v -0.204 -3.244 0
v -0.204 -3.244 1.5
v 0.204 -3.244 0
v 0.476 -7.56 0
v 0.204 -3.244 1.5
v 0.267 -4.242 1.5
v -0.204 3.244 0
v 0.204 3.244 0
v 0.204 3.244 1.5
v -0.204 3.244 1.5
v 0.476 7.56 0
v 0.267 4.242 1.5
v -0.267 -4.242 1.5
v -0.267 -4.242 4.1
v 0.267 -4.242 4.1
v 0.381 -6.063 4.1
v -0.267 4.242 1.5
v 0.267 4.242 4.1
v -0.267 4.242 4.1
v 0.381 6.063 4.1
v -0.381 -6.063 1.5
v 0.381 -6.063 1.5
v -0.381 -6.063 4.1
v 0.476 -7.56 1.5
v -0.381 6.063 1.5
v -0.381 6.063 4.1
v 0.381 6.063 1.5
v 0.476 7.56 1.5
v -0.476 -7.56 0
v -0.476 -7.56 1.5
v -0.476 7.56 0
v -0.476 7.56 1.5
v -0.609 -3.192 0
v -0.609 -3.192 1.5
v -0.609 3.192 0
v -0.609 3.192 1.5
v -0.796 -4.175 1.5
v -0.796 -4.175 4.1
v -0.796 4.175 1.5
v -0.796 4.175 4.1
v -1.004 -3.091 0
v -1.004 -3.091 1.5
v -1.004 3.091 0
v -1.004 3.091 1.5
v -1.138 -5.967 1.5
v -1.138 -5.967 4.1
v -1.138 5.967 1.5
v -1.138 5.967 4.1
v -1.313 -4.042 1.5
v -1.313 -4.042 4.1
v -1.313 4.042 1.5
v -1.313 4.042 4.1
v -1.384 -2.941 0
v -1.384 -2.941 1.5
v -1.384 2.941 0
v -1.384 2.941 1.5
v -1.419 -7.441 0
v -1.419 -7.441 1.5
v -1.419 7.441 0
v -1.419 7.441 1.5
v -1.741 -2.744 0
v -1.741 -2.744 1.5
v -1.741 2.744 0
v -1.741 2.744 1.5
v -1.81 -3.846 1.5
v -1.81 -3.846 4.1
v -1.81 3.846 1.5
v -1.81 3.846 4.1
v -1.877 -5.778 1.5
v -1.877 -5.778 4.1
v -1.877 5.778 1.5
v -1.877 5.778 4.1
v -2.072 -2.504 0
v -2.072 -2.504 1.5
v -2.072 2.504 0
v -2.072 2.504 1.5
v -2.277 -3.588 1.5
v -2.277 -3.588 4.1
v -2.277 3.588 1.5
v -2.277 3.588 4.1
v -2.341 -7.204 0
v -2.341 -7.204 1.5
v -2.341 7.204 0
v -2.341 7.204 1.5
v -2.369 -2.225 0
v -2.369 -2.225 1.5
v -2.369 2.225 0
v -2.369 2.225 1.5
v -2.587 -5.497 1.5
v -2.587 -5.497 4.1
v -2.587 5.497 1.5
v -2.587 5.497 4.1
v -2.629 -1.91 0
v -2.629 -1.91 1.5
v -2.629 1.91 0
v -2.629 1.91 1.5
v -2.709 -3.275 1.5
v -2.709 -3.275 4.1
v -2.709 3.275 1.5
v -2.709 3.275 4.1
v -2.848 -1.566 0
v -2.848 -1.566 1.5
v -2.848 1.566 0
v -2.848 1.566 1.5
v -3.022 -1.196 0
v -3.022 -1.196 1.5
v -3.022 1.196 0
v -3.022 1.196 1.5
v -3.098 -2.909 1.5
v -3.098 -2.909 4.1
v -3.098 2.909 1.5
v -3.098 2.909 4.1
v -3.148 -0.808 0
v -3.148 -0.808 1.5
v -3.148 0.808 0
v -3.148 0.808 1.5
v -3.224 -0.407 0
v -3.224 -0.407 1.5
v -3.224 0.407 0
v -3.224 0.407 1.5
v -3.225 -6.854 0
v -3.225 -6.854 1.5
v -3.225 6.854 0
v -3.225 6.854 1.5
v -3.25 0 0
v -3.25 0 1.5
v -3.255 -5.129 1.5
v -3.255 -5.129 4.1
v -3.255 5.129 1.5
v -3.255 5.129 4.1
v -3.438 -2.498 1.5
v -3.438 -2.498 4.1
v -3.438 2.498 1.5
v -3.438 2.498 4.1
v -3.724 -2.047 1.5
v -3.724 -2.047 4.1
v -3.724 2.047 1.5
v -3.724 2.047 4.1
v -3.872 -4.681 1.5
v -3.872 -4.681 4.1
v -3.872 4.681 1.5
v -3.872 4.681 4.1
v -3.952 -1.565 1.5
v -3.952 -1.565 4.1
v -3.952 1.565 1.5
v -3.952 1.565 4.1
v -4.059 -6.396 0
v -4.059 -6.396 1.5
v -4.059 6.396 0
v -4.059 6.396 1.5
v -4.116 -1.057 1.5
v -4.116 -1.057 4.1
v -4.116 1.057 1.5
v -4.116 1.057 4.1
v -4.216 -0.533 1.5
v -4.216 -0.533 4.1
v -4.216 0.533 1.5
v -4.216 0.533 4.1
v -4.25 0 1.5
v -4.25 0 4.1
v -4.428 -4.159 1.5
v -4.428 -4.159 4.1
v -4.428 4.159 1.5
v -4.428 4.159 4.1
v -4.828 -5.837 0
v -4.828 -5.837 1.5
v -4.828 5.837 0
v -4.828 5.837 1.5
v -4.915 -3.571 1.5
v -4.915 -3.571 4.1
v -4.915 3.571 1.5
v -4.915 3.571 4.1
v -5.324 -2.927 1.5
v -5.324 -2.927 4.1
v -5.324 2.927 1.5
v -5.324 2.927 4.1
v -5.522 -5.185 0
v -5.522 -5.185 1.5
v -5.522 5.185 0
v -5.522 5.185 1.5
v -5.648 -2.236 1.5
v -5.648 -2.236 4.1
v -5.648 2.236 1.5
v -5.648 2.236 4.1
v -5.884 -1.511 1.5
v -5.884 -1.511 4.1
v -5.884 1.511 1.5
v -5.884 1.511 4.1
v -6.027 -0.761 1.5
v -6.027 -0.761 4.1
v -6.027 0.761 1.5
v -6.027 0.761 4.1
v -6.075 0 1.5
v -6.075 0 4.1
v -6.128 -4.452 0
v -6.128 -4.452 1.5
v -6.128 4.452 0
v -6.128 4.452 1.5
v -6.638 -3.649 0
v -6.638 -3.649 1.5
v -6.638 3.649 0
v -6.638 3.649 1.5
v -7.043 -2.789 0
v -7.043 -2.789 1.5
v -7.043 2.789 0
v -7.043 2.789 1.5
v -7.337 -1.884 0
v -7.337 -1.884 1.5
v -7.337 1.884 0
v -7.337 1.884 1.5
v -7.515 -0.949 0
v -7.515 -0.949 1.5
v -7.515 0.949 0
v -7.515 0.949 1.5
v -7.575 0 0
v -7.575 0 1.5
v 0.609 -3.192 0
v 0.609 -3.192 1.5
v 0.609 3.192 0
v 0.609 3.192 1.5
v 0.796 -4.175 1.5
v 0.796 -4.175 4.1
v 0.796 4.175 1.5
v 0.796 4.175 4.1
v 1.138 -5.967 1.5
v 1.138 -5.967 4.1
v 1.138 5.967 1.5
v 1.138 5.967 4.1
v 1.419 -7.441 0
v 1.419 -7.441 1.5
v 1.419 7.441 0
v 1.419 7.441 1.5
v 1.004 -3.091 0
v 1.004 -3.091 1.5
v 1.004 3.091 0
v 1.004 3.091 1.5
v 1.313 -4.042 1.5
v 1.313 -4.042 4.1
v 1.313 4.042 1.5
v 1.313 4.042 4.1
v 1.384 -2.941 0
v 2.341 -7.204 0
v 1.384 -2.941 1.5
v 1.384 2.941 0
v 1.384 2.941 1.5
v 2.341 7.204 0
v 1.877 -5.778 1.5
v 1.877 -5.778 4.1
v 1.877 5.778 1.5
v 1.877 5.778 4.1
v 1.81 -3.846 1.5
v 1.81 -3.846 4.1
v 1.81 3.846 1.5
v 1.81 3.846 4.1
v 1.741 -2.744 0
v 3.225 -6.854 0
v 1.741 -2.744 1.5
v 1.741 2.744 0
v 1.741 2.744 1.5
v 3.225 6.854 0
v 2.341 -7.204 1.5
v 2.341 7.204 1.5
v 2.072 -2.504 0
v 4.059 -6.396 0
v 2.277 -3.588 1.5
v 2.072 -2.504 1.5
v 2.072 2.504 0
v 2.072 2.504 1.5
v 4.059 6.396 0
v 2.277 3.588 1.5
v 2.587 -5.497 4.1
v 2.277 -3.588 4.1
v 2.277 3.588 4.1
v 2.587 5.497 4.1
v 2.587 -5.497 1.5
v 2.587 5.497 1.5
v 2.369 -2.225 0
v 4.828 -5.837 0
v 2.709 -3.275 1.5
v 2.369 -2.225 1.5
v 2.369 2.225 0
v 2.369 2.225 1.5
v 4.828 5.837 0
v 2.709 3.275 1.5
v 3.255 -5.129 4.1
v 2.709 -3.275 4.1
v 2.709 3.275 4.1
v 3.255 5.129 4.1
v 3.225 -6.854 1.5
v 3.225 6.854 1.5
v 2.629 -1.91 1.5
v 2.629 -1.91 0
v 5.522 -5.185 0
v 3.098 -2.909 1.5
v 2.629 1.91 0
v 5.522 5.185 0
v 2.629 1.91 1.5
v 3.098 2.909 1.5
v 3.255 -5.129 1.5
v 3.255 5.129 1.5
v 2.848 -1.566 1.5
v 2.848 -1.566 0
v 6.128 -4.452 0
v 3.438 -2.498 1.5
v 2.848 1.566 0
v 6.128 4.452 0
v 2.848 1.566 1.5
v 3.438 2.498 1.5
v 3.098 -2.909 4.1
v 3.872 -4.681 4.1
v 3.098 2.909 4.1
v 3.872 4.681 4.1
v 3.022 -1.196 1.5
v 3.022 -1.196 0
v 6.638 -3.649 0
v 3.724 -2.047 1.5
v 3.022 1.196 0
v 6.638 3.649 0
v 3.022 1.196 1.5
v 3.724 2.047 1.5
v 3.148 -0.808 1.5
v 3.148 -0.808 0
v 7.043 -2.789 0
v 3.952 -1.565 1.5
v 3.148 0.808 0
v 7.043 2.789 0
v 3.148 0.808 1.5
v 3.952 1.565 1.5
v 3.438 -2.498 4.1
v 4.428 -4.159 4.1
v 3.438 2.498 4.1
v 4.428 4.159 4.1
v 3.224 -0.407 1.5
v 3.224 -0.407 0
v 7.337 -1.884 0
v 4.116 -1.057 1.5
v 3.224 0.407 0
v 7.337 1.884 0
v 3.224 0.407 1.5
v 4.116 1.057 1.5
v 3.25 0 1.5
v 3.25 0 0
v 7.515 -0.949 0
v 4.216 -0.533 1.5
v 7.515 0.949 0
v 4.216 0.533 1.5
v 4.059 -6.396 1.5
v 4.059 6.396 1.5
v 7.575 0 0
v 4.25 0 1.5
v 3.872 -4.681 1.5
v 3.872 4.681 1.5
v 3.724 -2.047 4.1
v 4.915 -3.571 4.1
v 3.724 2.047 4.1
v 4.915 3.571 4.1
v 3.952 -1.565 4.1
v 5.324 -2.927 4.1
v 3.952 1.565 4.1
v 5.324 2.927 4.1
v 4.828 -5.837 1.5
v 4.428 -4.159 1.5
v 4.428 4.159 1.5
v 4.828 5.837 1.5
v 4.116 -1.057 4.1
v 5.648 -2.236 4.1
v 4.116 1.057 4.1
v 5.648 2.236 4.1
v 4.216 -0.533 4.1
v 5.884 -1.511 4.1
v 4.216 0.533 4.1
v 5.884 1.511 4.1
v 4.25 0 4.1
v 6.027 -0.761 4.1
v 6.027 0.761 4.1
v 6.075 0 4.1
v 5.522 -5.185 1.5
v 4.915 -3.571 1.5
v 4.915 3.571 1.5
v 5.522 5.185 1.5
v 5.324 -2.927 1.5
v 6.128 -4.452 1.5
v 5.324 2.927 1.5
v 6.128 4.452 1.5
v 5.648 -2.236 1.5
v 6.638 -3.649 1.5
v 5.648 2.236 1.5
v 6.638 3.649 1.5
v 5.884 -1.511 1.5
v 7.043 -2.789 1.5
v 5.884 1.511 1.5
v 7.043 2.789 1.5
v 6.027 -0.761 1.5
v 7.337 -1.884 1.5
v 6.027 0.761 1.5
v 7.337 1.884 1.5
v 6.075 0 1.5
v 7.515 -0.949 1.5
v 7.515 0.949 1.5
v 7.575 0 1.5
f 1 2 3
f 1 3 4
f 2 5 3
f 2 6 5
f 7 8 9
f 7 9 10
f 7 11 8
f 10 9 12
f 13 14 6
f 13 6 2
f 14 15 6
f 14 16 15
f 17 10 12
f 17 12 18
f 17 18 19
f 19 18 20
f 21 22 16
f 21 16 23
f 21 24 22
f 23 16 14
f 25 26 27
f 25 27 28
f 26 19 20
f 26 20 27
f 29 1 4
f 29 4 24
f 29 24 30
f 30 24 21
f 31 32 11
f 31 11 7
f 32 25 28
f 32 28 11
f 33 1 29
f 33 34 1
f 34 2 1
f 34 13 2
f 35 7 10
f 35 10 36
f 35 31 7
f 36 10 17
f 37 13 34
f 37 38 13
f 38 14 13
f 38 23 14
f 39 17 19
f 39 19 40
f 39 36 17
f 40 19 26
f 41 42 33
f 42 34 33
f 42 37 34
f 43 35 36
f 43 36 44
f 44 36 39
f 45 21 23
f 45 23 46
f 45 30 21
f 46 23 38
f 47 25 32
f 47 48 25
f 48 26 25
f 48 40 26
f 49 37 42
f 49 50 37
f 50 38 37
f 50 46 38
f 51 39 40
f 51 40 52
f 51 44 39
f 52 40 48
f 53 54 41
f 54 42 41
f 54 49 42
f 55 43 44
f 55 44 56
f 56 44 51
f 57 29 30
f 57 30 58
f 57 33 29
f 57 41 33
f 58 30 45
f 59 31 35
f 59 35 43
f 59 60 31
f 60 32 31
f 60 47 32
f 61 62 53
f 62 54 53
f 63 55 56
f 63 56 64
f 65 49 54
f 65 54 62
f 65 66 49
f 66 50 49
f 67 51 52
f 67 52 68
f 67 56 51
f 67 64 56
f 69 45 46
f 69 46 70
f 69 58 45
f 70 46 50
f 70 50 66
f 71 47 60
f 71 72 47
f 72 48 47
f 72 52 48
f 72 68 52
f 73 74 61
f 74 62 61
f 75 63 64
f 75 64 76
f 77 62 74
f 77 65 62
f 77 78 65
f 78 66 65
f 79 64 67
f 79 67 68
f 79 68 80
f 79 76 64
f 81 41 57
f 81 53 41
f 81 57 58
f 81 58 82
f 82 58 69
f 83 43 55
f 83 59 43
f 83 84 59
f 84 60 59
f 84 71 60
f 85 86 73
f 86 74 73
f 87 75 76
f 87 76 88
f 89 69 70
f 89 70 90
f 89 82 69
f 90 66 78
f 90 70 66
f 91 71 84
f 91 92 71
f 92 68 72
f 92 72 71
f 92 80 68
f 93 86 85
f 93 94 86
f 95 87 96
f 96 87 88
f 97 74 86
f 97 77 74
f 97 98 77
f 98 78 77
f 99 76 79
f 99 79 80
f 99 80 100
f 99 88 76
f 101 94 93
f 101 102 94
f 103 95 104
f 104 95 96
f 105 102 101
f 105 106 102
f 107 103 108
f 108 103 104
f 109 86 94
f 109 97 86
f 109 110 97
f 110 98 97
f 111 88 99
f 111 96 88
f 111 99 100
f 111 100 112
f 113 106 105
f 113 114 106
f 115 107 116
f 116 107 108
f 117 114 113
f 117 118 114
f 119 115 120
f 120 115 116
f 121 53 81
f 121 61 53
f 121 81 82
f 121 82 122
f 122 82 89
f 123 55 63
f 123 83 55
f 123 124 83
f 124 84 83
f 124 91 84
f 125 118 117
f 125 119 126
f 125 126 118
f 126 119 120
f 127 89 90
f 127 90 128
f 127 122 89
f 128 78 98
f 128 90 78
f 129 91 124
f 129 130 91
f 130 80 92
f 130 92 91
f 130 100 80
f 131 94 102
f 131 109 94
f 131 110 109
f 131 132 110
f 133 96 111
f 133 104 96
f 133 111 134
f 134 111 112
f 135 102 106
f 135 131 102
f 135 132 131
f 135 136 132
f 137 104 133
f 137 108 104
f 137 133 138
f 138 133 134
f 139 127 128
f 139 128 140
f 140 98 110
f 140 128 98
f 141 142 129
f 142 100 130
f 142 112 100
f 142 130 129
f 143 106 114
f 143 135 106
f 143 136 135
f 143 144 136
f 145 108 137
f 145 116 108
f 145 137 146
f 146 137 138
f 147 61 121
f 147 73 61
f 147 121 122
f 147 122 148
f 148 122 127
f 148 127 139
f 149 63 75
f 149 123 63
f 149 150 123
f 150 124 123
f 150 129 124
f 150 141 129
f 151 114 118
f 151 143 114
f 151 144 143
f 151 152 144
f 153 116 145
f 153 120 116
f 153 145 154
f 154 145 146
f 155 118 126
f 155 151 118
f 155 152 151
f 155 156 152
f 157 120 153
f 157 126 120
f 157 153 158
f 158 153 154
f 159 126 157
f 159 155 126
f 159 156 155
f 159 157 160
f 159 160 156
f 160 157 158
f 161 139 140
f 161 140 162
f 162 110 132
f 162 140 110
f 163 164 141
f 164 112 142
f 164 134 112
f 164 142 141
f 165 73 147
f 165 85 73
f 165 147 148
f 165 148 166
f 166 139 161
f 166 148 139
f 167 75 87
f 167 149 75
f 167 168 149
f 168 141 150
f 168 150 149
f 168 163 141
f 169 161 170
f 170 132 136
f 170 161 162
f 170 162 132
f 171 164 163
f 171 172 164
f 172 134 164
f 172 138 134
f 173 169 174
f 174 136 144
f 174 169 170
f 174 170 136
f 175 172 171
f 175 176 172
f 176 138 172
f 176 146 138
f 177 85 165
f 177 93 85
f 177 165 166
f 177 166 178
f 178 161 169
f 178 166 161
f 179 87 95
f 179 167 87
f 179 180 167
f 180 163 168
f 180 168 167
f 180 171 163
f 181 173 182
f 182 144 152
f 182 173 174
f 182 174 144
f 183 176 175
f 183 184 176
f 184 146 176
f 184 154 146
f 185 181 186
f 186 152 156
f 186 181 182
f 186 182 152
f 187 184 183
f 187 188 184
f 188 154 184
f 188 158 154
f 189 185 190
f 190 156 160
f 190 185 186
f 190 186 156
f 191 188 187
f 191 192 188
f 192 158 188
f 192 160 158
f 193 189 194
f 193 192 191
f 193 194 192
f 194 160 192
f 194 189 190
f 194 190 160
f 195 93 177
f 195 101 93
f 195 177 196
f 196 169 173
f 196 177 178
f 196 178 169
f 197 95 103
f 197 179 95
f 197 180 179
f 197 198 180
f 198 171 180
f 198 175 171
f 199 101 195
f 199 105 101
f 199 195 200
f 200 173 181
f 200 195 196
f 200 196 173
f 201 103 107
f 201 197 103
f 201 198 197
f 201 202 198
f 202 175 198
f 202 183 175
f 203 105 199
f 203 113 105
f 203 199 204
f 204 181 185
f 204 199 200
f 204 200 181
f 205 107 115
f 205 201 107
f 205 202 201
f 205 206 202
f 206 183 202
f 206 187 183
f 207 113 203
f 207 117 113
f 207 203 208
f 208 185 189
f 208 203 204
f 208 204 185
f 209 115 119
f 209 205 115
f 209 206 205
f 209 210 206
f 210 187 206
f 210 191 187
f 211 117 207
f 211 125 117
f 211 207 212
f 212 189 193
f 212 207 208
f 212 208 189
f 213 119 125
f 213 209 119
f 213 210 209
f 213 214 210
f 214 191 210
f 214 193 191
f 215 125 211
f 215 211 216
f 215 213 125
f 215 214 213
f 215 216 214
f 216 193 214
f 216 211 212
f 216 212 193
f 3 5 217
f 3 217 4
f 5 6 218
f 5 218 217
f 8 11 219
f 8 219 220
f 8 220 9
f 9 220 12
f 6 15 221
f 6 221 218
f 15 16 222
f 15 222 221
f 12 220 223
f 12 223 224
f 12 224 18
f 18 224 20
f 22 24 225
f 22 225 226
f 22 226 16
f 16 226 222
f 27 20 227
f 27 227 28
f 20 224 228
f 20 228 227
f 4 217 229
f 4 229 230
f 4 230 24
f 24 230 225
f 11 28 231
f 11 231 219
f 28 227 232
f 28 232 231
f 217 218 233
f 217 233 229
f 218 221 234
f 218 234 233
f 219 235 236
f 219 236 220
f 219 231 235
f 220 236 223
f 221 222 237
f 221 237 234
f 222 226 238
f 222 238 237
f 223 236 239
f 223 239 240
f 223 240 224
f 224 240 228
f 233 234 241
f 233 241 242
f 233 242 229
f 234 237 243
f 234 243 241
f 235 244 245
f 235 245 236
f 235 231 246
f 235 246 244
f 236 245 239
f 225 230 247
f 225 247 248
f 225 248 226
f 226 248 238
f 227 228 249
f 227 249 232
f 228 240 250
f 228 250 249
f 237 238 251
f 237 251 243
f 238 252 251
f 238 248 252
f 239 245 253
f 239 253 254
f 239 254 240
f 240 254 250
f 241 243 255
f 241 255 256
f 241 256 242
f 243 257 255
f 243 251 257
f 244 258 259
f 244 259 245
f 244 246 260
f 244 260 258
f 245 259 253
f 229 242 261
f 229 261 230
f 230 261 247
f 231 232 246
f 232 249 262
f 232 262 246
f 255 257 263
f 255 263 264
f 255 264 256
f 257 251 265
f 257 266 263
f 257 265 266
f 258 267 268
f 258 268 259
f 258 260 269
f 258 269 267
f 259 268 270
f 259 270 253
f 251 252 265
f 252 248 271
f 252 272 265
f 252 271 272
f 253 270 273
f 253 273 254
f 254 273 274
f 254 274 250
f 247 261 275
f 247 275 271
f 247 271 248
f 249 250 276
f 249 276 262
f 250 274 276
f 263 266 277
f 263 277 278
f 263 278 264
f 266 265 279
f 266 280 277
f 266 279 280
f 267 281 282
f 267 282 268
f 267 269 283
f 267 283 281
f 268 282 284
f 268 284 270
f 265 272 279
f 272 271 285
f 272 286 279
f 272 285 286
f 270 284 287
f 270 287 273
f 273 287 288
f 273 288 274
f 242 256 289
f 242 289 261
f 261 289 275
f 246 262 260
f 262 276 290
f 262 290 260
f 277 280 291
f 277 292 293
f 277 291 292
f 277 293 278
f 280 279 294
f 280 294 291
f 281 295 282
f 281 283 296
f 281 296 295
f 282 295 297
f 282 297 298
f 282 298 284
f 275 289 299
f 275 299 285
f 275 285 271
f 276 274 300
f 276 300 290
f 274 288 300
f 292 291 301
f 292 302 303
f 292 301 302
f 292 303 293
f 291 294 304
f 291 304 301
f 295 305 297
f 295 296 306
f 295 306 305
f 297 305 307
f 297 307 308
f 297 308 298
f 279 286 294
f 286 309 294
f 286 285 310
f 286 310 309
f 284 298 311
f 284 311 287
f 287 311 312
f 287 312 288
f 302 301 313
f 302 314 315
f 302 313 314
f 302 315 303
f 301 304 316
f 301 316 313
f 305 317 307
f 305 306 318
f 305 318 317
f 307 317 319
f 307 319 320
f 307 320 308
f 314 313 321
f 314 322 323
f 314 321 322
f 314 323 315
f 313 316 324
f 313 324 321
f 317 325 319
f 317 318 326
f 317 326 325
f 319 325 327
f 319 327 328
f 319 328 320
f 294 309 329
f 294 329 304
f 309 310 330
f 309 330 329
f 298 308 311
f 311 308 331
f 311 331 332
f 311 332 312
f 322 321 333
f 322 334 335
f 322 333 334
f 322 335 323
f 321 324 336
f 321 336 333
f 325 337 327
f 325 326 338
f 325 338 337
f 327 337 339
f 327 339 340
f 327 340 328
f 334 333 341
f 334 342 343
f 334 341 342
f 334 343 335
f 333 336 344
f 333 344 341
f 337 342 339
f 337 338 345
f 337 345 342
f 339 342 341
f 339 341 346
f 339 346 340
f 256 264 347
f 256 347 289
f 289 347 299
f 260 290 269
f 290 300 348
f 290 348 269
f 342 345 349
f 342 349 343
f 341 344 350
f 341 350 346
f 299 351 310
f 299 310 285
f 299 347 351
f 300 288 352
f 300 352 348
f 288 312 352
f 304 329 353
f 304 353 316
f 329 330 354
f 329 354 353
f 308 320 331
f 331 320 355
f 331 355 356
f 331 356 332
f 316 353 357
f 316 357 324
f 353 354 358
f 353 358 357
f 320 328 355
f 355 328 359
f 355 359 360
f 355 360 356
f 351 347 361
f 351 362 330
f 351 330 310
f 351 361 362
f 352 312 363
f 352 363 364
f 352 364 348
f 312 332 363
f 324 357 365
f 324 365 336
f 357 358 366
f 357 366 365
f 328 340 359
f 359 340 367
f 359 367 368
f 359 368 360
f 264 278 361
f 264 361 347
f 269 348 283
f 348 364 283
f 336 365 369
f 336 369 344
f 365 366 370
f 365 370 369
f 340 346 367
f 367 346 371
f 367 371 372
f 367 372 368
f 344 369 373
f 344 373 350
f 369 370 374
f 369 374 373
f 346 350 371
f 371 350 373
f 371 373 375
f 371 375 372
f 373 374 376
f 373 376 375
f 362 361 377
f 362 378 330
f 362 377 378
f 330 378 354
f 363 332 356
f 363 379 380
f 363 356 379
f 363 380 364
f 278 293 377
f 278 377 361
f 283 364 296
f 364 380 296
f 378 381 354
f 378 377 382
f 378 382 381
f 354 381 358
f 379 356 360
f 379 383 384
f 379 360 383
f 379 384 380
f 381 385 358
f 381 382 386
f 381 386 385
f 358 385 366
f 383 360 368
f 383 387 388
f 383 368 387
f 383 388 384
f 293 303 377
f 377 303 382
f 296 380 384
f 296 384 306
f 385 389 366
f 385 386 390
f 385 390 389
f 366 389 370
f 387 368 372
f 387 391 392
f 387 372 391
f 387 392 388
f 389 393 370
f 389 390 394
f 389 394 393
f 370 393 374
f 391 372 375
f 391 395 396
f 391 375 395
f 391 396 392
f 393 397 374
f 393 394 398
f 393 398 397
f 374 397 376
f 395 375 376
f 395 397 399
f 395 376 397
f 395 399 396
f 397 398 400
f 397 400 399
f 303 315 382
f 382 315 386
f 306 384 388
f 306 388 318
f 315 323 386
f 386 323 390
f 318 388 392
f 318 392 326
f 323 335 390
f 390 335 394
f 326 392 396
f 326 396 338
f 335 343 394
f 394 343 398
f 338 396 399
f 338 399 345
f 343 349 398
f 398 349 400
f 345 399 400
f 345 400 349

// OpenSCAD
// file: ../888_1023.scad
include <../parameters.scad>

draft = $preview;

module 888_1023(height = 3, draft = true){

    inner_diameter = M8_screw_diameter;
    outer_diameter = bearing_efsm_12_d + 3;
    rim_height = 1.5;
    bearng_ball_height = height;

    difference(){
        union(){
            cylinder(h = rim_height, d = outer_diameter, $fn = 50);
            translate([0,0,rim_height])
                cylinder(h = bearng_ball_height, d = bearing_efsm_12_d, $fn = 50);
        }


        cylinder(d = M6_screw_diameter, h = 10, $fn = 50);

        translate([0, 0, rim_height])
            cylinder(h = 2 * bearng_ball_height , d = inner_diameter, $fn = 50);
    }
}

888_1023(3, draft);
// main file
include <../../parameters.scad>
use <../888_1023.scad>

draft = $preview;

888_1023(2.6, draft);
